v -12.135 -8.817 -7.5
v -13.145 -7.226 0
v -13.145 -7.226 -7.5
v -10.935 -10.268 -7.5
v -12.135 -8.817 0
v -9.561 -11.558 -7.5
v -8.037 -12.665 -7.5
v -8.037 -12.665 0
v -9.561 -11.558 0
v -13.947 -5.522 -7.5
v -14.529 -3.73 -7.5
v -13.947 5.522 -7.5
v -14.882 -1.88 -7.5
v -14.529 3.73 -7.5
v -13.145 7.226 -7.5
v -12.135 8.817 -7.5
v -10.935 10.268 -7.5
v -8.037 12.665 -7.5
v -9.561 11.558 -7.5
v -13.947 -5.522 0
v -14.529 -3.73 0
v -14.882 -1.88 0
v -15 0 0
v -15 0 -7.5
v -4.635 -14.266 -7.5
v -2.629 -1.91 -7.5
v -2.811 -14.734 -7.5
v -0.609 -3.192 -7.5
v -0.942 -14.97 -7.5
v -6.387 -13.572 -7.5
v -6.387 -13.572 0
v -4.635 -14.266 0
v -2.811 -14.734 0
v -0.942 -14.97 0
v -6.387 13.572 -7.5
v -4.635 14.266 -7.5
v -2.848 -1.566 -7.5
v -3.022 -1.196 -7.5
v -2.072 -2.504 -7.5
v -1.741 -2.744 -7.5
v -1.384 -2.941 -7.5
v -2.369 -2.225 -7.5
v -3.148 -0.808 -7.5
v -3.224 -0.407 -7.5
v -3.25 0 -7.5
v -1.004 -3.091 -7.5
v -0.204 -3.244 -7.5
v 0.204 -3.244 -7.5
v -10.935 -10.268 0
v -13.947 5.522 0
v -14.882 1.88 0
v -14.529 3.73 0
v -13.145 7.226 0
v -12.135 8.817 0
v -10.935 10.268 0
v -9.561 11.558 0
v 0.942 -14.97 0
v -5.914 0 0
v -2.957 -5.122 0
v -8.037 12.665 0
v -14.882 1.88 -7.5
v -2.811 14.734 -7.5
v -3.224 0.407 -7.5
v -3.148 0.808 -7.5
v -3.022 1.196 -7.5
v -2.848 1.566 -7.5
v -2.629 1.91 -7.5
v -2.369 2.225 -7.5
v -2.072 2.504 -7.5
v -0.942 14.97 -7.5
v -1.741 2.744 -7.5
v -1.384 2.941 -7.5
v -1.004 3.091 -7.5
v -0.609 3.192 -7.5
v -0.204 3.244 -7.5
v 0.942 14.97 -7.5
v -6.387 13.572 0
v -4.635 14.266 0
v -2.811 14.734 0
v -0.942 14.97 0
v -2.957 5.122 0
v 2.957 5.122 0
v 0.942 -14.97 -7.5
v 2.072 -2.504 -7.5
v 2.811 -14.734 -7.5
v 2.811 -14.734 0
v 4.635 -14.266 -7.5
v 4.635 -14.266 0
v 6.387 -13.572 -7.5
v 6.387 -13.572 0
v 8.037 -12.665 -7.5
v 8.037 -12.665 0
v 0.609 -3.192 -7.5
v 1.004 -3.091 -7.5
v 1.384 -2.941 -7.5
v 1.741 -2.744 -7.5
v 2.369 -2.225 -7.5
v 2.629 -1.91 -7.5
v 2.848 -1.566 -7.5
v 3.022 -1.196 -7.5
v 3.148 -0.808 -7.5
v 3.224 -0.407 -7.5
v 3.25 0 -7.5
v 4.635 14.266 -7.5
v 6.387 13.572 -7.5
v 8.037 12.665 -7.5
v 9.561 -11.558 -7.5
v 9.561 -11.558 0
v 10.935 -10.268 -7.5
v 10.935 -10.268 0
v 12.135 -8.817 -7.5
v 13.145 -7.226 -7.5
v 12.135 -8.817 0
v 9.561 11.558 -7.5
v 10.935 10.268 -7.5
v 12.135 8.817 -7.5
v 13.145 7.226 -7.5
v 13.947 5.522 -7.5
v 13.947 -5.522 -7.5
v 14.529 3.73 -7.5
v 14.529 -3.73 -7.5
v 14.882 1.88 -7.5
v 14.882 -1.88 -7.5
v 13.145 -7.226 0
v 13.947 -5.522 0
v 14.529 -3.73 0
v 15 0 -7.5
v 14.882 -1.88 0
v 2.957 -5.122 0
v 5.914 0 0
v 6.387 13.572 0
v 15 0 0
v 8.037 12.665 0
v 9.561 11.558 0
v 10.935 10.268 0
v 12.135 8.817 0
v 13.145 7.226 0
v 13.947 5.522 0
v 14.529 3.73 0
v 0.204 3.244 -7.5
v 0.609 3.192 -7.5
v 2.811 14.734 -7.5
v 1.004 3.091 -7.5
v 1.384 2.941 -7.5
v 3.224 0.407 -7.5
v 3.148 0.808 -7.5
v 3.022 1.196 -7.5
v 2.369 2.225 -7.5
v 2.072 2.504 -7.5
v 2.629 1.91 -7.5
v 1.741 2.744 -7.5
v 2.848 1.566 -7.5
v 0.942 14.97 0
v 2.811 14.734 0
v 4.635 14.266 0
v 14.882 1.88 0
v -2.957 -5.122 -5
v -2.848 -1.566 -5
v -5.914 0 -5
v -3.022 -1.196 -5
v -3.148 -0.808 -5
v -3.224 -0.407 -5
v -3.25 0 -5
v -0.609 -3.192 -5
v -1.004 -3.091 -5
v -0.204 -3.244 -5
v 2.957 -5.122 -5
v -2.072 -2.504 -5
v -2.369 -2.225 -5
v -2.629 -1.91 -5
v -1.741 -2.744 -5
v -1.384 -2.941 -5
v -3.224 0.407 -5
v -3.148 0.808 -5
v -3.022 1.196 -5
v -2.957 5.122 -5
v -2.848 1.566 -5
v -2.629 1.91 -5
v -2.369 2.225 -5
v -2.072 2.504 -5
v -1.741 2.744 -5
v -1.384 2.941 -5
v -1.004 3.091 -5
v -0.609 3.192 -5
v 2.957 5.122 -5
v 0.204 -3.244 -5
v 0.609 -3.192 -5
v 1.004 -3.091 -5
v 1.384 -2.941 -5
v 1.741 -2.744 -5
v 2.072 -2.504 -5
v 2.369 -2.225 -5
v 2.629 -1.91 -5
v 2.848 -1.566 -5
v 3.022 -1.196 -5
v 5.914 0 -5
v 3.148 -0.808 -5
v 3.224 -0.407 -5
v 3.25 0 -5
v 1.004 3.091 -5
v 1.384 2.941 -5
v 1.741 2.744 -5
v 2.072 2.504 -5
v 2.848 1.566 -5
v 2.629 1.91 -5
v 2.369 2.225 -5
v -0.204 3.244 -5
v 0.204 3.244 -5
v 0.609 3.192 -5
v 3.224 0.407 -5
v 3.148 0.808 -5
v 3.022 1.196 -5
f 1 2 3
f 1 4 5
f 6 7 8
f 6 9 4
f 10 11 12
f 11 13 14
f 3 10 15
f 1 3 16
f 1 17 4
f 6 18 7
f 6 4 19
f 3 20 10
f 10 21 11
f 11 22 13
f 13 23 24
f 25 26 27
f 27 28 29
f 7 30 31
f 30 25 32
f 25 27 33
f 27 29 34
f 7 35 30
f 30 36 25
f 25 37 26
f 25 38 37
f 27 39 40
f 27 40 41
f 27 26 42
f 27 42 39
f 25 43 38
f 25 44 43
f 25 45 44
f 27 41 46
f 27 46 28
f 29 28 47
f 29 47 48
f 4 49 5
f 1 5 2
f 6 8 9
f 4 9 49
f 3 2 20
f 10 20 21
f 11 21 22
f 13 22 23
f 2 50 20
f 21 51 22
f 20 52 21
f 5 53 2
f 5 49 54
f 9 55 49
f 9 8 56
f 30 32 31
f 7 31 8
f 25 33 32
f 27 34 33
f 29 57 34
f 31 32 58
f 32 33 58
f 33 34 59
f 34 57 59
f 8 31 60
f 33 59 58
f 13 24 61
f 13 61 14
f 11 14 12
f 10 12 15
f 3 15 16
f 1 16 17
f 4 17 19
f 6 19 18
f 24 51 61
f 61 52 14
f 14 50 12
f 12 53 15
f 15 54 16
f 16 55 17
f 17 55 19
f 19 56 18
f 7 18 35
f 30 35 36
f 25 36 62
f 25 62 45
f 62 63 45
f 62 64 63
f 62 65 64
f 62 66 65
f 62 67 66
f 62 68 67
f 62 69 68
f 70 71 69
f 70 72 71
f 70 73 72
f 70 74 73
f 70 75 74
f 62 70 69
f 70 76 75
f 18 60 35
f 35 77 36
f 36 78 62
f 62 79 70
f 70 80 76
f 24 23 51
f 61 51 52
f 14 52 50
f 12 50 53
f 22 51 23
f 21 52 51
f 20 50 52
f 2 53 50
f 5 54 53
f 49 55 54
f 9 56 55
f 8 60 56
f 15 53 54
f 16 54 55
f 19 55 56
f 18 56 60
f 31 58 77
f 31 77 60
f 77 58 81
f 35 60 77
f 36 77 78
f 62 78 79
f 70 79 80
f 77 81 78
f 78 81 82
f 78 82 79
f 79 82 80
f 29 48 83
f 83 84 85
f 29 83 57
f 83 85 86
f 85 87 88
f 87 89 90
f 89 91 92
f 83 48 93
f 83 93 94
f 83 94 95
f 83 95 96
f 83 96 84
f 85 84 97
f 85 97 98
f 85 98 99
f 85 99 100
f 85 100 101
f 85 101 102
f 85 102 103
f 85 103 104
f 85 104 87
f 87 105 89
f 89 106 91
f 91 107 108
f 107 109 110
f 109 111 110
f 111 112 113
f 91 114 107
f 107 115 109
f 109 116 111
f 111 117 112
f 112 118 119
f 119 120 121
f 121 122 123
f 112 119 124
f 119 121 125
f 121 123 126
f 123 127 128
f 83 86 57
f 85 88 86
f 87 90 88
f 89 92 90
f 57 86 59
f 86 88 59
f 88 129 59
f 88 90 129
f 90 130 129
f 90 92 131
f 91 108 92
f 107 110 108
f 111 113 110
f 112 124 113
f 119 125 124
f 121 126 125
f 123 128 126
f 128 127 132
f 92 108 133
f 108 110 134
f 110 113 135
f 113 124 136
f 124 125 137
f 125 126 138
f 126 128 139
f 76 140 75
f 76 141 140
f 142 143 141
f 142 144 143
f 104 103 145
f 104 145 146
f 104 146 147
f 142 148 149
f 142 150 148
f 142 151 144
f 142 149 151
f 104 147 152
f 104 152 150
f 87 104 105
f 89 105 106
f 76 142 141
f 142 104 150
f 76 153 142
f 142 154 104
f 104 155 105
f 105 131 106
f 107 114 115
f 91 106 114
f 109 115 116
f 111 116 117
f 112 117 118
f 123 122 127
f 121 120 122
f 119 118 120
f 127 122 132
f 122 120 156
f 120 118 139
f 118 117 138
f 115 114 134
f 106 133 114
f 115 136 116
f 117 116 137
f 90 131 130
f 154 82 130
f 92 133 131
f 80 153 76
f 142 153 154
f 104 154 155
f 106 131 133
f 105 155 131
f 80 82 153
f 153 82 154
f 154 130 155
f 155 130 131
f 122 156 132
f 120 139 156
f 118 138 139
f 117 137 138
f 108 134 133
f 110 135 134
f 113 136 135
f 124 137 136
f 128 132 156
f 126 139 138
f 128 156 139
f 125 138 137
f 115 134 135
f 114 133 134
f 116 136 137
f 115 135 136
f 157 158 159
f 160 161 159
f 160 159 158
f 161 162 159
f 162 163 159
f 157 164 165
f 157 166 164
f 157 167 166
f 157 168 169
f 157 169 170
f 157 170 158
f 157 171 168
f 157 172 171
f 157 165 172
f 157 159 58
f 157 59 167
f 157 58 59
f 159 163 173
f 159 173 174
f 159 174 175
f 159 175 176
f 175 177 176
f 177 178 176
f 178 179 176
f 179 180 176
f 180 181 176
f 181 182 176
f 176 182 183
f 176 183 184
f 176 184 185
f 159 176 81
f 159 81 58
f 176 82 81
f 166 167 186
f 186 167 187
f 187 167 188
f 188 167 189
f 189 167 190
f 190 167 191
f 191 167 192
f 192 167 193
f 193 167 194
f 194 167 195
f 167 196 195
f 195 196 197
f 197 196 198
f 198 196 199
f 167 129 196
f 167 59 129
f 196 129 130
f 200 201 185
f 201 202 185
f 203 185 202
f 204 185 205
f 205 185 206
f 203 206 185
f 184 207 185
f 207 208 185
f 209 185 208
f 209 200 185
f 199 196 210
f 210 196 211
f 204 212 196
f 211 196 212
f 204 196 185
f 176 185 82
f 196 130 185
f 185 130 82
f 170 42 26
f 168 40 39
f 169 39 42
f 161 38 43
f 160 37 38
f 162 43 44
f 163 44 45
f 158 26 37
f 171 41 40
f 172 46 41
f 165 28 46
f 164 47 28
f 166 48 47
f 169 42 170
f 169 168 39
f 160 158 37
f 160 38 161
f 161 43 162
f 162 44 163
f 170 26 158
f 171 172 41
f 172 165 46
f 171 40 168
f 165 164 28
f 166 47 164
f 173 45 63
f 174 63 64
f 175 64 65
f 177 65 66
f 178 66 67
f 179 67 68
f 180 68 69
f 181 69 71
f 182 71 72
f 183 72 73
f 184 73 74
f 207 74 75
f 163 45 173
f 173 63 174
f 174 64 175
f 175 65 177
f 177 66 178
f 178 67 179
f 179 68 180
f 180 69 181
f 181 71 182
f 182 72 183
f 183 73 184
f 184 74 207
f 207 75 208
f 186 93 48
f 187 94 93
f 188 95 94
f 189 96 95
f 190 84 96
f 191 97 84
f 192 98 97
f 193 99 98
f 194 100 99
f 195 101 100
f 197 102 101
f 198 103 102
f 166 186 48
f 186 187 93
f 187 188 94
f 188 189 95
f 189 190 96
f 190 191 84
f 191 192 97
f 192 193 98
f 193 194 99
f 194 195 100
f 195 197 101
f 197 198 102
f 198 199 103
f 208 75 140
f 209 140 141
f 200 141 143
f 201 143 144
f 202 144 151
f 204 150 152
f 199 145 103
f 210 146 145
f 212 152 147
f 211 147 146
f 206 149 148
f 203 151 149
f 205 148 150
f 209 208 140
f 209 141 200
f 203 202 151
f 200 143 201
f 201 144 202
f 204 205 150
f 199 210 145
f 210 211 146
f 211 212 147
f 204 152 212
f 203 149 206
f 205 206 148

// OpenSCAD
$fn = 50;

difference() {
	union() {
		translate(v = [0, 0, -7.5]) {
			cylinder(h = 7.5, r = 15.0);
		}
		#translate(v = [0, 0, -9.0]) {
			cylinder(h = 9, r = 2.875);
		}
	}
	union() {
		translate(v = [0, 0, 0]) {
			rotate(a = [0, 0, 0]) {
				difference() {
					union() {
						translate(v = [0, 0, -5]) {
							linear_extrude(height = 5) {
								polygon(points = [[5.914249999999999, 0.0], [2.957125, 5.1218907443321156], [-2.9571249999999982, 5.1218907443321156], [-5.914249999999999, 7.242867331857232e-16], [-2.9571250000000022, -5.121890744332115], [2.9571249999999956, -5.121890744332118]]);
							}
						}
					}
					union();
				}
			}
		}
		#translate(v = [0, 0, -100.0]) {
			cylinder(h = 200, r = 3.25);
		}
	}
}
